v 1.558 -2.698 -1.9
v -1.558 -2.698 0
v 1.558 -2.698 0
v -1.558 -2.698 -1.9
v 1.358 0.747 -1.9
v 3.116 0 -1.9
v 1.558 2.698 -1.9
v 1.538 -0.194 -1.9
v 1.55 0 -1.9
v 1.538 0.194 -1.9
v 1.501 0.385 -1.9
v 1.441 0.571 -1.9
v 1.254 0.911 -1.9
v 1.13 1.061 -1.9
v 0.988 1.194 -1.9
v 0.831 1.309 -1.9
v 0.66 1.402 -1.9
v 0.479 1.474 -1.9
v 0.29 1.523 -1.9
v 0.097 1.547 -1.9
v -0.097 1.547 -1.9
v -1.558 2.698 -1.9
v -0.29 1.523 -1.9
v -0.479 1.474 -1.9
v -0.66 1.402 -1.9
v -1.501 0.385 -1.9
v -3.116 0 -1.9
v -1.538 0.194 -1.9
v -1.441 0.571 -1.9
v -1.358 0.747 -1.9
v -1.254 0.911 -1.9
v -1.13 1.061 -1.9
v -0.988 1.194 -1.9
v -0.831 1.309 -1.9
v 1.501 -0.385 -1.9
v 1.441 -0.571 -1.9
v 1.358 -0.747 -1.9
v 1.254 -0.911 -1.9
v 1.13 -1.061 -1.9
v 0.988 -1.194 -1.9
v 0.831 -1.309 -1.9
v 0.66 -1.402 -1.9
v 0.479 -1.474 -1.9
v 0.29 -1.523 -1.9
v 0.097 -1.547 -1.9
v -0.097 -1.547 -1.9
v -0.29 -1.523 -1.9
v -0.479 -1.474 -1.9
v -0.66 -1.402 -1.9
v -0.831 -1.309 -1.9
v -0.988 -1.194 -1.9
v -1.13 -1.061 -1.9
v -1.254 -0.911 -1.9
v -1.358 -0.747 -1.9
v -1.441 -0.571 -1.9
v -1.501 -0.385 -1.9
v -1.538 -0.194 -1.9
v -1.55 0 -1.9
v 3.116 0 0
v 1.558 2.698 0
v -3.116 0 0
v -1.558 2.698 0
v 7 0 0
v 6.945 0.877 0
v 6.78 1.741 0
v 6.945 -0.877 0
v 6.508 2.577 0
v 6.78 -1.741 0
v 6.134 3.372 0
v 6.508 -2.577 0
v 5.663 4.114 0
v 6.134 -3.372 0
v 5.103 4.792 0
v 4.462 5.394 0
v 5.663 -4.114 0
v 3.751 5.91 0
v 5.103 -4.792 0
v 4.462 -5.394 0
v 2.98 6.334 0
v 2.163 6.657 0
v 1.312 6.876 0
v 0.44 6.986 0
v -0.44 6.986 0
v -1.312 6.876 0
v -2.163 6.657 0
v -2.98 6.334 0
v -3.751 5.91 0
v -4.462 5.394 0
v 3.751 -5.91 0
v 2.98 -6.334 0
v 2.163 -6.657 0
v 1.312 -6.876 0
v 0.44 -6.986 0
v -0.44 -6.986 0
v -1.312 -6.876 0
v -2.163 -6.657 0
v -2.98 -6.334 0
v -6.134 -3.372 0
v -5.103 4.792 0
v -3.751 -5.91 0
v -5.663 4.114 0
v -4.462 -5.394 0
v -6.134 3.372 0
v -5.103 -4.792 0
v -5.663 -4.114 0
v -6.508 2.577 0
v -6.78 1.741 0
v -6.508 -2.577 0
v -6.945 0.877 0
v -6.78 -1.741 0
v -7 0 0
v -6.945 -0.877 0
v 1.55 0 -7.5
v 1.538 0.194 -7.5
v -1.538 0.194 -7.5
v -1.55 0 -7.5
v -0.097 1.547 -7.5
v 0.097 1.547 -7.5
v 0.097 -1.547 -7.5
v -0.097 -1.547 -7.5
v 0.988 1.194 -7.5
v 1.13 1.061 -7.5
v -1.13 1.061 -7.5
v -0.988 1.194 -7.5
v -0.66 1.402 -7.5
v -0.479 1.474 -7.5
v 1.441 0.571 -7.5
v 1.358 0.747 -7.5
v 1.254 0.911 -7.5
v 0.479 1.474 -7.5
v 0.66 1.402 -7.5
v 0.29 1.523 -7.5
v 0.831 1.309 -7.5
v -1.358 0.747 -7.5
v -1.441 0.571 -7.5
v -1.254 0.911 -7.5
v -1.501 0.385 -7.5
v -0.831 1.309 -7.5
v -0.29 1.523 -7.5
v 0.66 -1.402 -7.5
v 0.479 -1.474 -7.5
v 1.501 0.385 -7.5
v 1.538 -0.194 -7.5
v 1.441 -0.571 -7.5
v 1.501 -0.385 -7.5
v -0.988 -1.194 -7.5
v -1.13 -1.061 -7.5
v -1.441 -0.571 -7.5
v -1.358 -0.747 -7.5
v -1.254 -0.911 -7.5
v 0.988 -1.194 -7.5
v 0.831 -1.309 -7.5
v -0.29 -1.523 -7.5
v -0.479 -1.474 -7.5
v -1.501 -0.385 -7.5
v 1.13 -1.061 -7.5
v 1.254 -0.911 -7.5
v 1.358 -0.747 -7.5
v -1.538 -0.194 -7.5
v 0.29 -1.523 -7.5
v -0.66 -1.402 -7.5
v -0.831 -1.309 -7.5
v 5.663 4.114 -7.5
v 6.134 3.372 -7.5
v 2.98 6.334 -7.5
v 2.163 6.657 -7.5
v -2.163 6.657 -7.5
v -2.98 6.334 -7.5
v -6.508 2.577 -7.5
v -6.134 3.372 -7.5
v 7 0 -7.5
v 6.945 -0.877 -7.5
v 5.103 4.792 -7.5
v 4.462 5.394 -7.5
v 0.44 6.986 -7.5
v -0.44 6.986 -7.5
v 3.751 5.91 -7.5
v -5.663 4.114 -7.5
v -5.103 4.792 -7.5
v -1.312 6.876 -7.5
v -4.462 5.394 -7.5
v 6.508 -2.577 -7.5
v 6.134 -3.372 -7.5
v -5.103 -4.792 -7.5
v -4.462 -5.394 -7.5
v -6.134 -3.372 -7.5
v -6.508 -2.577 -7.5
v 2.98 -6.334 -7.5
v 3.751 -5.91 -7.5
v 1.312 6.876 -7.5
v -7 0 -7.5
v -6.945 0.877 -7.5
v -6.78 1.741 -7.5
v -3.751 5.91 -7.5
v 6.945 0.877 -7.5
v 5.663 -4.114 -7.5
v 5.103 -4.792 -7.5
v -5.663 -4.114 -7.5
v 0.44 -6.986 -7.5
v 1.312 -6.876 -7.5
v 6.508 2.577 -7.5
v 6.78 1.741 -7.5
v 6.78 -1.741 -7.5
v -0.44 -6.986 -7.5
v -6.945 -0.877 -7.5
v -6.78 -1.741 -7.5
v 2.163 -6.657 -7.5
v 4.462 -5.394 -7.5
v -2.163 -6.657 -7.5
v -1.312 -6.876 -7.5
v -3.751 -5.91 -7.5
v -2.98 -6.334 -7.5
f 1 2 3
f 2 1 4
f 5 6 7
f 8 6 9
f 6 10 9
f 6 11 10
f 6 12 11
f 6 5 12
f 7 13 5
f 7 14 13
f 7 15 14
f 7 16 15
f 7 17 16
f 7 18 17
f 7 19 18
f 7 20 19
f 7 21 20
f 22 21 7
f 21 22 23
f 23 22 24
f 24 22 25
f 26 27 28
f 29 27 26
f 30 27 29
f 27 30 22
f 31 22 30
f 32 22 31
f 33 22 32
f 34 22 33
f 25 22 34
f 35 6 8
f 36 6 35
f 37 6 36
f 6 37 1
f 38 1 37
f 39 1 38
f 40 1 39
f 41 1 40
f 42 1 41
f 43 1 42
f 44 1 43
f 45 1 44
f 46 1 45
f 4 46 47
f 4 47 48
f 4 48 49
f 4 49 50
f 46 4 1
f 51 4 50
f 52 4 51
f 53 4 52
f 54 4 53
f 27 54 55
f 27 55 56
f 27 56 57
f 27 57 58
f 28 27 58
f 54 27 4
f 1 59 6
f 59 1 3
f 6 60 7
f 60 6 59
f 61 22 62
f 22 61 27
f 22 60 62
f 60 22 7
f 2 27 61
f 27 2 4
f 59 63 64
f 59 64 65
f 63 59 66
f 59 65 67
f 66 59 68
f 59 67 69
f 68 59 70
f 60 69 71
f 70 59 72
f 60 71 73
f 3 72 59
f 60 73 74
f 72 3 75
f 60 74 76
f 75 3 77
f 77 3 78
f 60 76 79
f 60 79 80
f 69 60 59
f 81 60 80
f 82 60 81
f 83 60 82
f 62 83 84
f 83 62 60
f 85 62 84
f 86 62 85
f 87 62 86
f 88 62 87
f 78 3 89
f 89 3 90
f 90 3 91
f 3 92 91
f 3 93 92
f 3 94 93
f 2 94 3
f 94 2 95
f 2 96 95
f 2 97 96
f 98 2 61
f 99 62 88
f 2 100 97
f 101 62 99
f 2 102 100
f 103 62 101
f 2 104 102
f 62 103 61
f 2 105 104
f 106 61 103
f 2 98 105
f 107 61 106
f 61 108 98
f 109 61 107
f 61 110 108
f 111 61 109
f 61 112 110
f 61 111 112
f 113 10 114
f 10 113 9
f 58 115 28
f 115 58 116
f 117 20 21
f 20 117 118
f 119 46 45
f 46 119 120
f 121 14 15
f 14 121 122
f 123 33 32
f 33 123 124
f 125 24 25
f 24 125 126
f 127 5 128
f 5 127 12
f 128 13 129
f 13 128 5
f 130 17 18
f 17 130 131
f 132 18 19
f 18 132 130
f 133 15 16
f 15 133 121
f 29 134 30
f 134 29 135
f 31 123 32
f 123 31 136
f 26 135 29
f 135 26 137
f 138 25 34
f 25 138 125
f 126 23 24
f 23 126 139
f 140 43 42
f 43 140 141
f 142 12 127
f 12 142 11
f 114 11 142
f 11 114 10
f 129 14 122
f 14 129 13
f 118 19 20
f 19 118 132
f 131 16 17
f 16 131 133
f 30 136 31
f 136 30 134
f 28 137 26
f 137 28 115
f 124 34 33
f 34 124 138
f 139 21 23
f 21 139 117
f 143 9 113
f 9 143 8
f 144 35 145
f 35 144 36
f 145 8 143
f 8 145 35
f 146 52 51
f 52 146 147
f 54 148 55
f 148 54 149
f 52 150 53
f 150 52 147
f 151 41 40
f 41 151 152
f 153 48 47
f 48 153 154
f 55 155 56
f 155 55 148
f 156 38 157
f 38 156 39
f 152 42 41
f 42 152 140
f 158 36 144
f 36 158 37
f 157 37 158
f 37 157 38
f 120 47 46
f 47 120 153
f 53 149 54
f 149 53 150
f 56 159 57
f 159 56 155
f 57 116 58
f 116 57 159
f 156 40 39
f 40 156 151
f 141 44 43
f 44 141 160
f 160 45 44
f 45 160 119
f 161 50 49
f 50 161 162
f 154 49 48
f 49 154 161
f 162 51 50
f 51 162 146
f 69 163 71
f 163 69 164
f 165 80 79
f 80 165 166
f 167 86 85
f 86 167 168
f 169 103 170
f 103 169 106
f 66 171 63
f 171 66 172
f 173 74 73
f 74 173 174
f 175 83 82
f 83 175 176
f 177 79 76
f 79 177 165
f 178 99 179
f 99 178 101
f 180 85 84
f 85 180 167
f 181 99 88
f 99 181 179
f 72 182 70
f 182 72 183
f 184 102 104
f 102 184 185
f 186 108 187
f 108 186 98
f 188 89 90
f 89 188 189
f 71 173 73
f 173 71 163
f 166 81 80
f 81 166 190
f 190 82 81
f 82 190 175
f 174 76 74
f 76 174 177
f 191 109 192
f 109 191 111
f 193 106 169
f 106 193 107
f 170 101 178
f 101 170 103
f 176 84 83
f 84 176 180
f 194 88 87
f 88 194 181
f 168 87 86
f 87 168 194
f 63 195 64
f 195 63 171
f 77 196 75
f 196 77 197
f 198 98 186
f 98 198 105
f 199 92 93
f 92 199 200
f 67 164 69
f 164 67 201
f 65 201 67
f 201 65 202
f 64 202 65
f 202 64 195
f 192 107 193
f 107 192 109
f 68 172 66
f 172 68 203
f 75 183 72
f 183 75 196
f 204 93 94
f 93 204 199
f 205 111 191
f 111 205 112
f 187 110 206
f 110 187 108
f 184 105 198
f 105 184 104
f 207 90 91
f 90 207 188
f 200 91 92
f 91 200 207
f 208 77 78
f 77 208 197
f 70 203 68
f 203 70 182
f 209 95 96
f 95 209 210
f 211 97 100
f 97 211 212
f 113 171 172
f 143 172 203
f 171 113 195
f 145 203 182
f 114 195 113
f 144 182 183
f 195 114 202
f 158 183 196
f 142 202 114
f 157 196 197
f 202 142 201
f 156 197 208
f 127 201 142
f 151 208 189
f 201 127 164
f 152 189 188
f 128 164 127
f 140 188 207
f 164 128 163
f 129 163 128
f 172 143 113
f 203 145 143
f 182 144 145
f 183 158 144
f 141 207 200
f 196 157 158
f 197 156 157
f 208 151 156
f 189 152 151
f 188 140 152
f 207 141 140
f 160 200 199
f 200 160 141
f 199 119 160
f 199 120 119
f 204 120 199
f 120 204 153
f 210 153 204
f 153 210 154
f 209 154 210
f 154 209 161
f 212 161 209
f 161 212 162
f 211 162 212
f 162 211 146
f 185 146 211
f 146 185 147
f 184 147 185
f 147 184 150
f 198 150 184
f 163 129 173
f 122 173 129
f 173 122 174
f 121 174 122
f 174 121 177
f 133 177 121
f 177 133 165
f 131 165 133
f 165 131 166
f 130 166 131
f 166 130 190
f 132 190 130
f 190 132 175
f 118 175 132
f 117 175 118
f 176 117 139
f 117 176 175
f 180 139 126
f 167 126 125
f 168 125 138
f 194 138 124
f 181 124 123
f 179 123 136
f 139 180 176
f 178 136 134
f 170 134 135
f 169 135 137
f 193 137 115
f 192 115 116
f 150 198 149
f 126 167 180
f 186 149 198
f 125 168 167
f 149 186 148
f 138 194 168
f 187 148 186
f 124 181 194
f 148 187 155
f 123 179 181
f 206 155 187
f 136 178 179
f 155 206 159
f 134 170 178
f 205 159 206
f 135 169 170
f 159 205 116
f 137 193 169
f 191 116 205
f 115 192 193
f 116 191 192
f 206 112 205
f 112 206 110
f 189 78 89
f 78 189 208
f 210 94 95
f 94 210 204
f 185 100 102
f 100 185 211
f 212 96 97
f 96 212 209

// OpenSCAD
$fn = 50;


difference() {
	union() {
		translate(v = [0, 0, -7.5000000000]) {
			cylinder(h = 7.5000000000, r = 7.0000000000);
		}
	}
	union() {
		translate(v = [0, 0, 0]) {
			rotate(a = [0, 0, 0]) {
				difference() {
					union() {
						translate(v = [0, 0, -1.9000000000]) {
							linear_extrude(height = 1.9000000000) {
								polygon(points = [[3.1158000000, 0.0000000000], [1.5579000000, 2.6983619531], [-1.5579000000, 2.6983619531], [-3.1158000000, 0.0000000000], [-1.5579000000, -2.6983619531], [1.5579000000, -2.6983619531]]);
							}
						}
					}
					union();
				}
			}
		}
		#translate(v = [0, 0, -100.0000000000]) {
			cylinder(h = 200, r = 1.5500000000);
		}
	}
}
